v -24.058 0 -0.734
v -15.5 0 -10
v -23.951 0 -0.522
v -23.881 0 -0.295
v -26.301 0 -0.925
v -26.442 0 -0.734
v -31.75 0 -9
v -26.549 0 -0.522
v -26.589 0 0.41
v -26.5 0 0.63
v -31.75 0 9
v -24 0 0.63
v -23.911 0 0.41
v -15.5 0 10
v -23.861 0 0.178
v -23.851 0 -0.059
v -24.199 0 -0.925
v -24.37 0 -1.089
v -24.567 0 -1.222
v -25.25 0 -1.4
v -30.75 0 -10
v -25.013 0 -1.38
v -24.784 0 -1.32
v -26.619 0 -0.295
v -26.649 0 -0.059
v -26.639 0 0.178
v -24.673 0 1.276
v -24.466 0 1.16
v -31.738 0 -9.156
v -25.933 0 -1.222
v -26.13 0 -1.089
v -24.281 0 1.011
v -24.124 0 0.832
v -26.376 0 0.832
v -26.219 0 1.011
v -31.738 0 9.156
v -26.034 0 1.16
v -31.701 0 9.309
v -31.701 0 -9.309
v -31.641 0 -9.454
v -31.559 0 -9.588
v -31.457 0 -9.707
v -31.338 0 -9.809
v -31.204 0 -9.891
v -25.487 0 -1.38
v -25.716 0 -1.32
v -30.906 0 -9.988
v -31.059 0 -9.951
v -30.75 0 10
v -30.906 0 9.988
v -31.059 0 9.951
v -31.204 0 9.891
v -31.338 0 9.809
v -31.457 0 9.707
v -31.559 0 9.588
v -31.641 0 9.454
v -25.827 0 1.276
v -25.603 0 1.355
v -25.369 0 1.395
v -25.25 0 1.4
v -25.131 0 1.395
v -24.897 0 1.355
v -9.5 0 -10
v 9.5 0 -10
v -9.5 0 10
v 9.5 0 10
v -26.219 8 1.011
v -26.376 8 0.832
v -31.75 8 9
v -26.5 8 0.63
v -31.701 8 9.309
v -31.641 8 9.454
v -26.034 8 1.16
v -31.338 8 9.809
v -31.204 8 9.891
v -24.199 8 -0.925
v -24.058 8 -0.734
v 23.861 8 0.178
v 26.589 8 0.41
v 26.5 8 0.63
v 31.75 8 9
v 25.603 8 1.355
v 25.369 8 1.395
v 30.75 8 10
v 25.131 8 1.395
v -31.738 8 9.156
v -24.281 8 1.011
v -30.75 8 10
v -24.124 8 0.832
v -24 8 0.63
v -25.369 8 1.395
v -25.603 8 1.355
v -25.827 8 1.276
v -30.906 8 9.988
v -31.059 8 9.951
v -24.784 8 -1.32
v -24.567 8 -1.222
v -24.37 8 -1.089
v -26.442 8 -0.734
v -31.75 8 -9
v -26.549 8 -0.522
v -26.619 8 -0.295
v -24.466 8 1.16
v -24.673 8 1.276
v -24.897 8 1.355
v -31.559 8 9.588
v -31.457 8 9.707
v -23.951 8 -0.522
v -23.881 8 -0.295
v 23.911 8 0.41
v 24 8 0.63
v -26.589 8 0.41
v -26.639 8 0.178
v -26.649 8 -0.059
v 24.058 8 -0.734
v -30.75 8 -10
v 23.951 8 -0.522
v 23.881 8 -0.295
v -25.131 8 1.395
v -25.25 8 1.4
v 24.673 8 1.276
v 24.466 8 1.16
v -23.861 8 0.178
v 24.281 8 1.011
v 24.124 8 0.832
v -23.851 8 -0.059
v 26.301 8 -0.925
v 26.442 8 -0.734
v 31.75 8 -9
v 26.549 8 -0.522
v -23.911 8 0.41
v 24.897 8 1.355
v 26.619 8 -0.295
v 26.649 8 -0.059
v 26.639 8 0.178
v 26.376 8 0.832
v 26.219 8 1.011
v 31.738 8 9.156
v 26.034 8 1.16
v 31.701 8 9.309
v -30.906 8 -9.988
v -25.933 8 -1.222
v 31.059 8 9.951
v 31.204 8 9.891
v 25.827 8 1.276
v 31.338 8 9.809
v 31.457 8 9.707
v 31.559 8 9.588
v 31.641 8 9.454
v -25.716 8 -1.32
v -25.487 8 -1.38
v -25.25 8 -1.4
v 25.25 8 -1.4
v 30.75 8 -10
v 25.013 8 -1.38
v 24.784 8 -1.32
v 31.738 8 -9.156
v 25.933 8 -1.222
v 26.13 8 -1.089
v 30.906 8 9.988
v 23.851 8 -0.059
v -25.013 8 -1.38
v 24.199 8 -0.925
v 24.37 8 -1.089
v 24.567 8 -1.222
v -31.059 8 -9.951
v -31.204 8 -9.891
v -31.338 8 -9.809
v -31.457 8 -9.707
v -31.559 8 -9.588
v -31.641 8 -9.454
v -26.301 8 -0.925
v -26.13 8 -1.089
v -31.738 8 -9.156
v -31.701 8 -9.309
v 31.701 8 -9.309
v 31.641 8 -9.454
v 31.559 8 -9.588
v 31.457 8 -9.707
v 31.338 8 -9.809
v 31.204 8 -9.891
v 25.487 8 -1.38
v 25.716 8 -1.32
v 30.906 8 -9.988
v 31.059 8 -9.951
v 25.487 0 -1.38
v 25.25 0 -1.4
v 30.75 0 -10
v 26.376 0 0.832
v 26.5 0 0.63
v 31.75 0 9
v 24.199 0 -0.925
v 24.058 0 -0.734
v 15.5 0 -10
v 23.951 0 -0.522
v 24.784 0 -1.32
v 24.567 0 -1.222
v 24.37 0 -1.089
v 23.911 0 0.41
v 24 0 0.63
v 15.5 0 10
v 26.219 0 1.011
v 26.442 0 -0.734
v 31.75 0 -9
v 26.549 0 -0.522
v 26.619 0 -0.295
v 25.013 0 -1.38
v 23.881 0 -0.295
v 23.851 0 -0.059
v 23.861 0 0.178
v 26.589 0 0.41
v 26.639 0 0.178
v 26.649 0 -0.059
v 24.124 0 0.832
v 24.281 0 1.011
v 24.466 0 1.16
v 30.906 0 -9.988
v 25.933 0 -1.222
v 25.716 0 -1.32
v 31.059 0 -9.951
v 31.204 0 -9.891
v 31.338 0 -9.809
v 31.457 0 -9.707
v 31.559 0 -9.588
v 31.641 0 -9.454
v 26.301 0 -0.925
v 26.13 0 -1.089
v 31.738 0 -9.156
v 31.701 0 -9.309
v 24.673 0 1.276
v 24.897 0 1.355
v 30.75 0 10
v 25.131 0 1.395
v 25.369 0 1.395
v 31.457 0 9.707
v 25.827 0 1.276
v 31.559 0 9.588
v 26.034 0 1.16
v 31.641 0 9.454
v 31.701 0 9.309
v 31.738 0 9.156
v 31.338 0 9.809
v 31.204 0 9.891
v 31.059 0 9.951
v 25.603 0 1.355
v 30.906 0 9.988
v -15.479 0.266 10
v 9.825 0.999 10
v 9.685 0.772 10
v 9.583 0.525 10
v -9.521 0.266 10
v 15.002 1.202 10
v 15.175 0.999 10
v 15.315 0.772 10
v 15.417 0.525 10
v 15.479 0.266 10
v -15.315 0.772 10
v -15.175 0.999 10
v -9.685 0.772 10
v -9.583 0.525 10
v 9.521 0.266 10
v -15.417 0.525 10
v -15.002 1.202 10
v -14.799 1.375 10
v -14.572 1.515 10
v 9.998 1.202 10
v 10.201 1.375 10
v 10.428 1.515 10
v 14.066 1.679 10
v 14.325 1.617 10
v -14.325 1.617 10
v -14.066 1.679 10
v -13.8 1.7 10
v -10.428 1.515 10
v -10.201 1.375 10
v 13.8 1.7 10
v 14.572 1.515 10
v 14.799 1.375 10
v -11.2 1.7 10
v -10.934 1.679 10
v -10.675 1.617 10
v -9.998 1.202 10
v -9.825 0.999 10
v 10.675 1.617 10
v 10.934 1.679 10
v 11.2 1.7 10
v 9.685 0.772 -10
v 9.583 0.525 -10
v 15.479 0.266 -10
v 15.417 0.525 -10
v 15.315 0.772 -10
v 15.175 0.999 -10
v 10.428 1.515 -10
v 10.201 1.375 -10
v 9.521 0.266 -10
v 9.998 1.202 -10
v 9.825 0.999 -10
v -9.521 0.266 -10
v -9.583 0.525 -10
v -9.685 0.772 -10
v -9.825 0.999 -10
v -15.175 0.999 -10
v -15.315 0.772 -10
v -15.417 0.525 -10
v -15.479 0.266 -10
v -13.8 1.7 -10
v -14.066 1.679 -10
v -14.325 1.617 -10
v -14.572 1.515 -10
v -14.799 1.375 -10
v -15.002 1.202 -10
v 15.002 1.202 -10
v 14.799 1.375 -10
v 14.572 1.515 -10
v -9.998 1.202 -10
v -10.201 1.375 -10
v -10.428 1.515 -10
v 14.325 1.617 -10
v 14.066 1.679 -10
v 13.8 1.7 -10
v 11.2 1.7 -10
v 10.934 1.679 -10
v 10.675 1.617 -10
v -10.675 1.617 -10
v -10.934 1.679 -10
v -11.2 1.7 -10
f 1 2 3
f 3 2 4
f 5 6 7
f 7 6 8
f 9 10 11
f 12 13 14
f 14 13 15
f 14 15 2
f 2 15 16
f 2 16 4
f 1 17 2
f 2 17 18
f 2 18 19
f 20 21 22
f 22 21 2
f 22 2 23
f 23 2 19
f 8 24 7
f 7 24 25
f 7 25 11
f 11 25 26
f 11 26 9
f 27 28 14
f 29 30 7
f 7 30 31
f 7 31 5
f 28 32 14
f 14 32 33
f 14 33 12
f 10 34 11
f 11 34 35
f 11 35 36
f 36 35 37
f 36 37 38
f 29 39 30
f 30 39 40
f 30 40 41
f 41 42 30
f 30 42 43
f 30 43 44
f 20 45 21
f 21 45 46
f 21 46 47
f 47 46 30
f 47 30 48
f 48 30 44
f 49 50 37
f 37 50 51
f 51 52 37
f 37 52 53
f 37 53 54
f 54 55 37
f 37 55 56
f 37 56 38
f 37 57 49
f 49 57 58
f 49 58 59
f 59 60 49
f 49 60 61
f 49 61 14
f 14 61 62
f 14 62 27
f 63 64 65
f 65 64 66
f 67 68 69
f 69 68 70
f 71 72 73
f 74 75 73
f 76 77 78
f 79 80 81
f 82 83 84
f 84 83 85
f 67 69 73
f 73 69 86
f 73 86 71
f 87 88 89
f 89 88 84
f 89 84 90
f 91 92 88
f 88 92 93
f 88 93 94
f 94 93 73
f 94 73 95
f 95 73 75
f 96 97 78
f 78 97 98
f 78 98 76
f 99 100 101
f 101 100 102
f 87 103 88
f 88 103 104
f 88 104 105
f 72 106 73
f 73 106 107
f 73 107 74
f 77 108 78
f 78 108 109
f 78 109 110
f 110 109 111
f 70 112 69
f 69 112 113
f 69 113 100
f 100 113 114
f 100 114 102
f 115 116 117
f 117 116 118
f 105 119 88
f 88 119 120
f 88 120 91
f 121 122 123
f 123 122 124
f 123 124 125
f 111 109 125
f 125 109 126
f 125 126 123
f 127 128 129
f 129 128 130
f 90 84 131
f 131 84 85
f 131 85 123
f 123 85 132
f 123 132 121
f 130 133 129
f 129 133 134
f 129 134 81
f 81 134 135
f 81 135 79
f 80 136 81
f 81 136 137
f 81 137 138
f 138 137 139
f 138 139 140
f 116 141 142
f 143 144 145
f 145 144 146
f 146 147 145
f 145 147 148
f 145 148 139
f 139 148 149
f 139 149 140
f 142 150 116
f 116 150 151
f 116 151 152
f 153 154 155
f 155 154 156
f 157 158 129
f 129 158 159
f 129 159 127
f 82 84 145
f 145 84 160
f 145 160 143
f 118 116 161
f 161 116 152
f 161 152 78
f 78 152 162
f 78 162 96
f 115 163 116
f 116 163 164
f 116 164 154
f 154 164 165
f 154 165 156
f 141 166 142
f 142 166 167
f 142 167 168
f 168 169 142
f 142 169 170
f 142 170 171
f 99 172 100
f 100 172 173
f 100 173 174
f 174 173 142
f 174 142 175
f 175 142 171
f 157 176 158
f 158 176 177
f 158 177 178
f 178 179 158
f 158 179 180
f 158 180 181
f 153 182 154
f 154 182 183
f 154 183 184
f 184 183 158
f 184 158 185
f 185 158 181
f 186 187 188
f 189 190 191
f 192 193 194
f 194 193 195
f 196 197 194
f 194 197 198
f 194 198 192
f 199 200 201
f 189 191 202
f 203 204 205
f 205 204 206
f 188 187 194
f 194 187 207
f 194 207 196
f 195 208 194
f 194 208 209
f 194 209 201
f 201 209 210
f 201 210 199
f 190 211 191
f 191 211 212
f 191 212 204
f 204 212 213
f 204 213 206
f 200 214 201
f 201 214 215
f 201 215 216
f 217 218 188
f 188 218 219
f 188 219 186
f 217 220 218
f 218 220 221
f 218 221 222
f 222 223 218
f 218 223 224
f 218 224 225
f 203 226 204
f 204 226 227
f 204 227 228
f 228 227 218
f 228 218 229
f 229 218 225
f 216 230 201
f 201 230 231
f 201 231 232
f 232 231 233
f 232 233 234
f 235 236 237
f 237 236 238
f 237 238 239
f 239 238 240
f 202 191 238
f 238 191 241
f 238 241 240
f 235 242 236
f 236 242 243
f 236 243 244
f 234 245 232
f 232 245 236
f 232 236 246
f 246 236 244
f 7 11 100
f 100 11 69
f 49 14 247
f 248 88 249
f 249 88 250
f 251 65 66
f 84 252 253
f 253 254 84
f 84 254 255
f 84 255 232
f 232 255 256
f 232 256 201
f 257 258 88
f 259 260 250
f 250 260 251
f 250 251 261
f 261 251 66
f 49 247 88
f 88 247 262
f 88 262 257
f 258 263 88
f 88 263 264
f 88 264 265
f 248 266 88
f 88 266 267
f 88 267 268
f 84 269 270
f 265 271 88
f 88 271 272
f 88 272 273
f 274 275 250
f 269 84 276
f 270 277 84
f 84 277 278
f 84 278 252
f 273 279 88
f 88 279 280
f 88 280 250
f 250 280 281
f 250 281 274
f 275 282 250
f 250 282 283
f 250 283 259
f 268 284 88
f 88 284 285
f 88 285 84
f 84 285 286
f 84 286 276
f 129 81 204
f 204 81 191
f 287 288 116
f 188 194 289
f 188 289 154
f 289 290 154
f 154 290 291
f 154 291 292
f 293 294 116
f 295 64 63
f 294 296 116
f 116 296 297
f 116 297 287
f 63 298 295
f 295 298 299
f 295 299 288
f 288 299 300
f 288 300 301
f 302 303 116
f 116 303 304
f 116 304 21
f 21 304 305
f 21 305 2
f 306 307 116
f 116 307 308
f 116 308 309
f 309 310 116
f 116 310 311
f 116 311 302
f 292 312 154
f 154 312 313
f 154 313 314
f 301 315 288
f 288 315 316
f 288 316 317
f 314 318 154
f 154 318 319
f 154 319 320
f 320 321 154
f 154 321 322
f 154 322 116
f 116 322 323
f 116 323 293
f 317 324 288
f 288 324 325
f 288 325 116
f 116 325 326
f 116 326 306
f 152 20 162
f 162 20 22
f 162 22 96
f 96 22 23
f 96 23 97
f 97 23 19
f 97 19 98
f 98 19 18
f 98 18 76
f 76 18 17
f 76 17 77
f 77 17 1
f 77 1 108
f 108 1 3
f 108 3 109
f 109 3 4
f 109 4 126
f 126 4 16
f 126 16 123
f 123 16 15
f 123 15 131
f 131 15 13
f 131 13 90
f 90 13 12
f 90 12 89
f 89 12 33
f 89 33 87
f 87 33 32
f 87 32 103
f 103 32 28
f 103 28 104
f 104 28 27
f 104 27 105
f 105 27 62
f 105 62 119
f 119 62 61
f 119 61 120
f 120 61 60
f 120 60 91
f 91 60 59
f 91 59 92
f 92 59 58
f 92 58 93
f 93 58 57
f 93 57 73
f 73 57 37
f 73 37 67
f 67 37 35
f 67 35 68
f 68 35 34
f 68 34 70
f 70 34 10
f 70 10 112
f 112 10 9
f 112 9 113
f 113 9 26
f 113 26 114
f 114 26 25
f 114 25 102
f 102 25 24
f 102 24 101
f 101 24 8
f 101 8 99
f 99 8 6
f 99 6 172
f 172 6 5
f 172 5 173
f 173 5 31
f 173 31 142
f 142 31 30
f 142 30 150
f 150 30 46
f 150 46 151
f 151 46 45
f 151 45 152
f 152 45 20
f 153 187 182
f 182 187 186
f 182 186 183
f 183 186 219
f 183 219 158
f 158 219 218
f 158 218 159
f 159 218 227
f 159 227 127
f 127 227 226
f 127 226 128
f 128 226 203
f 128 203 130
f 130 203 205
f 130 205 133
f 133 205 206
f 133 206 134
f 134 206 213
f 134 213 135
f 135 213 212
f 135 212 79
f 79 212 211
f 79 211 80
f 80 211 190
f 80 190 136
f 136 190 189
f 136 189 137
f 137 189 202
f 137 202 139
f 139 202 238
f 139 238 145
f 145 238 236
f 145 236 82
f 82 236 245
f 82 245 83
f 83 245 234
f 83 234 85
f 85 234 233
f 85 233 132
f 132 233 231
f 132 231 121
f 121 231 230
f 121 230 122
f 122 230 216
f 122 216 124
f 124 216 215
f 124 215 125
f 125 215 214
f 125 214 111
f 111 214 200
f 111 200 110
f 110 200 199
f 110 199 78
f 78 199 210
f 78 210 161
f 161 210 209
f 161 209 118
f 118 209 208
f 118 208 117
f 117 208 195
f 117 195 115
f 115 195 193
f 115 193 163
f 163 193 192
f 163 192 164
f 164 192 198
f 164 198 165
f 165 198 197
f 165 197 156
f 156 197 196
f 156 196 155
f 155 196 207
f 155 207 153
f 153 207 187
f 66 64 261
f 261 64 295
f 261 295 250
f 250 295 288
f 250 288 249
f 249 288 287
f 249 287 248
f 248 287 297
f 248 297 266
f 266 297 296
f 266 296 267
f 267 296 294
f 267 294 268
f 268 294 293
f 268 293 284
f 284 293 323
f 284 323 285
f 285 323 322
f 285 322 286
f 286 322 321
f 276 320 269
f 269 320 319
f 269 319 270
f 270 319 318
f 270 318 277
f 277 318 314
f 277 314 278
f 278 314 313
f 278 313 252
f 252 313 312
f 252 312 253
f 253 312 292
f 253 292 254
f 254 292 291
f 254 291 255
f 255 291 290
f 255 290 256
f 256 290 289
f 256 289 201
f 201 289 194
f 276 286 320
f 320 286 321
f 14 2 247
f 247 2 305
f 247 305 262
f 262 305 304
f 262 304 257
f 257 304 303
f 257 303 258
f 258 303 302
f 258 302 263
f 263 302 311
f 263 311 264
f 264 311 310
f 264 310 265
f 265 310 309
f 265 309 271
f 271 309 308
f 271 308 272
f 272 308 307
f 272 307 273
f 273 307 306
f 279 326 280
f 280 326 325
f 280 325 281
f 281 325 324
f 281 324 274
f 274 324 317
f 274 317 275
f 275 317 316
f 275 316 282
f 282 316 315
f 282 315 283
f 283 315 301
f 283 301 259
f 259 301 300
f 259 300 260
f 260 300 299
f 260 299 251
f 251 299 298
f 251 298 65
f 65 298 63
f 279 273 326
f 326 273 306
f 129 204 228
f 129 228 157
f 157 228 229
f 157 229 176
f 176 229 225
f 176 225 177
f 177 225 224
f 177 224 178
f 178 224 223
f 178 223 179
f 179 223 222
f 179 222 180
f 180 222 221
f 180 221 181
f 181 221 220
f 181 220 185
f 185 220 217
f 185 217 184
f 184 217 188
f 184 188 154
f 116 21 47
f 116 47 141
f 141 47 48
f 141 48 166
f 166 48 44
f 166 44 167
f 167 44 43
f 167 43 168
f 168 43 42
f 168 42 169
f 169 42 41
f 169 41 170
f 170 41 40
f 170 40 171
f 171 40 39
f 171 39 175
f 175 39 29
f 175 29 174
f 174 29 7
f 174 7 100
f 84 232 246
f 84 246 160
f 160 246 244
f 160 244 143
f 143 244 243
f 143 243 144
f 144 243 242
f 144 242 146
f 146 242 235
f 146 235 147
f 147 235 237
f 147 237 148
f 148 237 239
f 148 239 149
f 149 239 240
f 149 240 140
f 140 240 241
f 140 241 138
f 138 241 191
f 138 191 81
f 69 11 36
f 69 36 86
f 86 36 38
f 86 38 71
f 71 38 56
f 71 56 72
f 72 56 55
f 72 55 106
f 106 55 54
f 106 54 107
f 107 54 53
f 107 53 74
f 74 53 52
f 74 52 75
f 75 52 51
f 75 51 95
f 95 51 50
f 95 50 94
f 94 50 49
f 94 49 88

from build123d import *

# Parameters (mm, degrees)
SKETCH1_W            = 63.5
SKETCH1_H            = 20
SKETCH1_R            = 1.4
BASE_DEPTH           = 8
WIRE_GROOVES_DEPTH   = 39.833780398
F_1MM_EDGE_FILLETS_R = 1


with BuildPart() as part:
    # Sketch1 → Base (new body)
    with BuildSketch(Plane(origin=(0, 0, 0), x_dir=(1, 0, 0), z_dir=(0, 1, 0))):
        Rectangle(SKETCH1_W, SKETCH1_H)
        with Locations((-25.25, 0)):
            Circle(SKETCH1_R, mode=Mode.SUBTRACT)
        with Locations((25.25, 0)):
            Circle(SKETCH1_R, mode=Mode.SUBTRACT)
    extrude(amount=BASE_DEPTH)

    # Sketch2 → Wire Grooves (cut, through all)
    with BuildSketch(Plane(origin=(0, 10, -10), x_dir=(1, 0, 0), z_dir=(0, 0, -1))):
        with BuildLine():
            Line((-15.5, 10), (-9.5, 10))
            ThreePointArc((-9.5, 10), (-9.997918472, 8.797918472), (-11.2, 8.3))
            Line((-11.2, 8.3), (-13.8, 8.3))
            ThreePointArc((-13.8, 8.3), (-15.002081528, 8.797918472), (-15.5, 10))
        make_face()
        with BuildLine():
            Line((9.5, 10), (15.5, 10))
            ThreePointArc((15.5, 10), (15.002081528, 8.797918472), (13.8, 8.3))
            Line((13.8, 8.3), (11.2, 8.3))
            ThreePointArc((11.2, 8.3), (9.997918472, 8.797918472), (9.5, 10))
        make_face()
    extrude(amount=-WIRE_GROOVES_DEPTH, mode=Mode.SUBTRACT)

    # 1mm Edge Fillets
    f_1mm_edge_fillets_edges = [part.edges().sort_by_distance(p)[0] for p in [
        (-31.75, 4, -10),
        (31.75, 4, -10),
        (31.75, 4, 10),
        (-31.75, 4, 10),
    ]]
    fillet(f_1mm_edge_fillets_edges, radius=F_1MM_EDGE_FILLETS_R)


solid = part.part
